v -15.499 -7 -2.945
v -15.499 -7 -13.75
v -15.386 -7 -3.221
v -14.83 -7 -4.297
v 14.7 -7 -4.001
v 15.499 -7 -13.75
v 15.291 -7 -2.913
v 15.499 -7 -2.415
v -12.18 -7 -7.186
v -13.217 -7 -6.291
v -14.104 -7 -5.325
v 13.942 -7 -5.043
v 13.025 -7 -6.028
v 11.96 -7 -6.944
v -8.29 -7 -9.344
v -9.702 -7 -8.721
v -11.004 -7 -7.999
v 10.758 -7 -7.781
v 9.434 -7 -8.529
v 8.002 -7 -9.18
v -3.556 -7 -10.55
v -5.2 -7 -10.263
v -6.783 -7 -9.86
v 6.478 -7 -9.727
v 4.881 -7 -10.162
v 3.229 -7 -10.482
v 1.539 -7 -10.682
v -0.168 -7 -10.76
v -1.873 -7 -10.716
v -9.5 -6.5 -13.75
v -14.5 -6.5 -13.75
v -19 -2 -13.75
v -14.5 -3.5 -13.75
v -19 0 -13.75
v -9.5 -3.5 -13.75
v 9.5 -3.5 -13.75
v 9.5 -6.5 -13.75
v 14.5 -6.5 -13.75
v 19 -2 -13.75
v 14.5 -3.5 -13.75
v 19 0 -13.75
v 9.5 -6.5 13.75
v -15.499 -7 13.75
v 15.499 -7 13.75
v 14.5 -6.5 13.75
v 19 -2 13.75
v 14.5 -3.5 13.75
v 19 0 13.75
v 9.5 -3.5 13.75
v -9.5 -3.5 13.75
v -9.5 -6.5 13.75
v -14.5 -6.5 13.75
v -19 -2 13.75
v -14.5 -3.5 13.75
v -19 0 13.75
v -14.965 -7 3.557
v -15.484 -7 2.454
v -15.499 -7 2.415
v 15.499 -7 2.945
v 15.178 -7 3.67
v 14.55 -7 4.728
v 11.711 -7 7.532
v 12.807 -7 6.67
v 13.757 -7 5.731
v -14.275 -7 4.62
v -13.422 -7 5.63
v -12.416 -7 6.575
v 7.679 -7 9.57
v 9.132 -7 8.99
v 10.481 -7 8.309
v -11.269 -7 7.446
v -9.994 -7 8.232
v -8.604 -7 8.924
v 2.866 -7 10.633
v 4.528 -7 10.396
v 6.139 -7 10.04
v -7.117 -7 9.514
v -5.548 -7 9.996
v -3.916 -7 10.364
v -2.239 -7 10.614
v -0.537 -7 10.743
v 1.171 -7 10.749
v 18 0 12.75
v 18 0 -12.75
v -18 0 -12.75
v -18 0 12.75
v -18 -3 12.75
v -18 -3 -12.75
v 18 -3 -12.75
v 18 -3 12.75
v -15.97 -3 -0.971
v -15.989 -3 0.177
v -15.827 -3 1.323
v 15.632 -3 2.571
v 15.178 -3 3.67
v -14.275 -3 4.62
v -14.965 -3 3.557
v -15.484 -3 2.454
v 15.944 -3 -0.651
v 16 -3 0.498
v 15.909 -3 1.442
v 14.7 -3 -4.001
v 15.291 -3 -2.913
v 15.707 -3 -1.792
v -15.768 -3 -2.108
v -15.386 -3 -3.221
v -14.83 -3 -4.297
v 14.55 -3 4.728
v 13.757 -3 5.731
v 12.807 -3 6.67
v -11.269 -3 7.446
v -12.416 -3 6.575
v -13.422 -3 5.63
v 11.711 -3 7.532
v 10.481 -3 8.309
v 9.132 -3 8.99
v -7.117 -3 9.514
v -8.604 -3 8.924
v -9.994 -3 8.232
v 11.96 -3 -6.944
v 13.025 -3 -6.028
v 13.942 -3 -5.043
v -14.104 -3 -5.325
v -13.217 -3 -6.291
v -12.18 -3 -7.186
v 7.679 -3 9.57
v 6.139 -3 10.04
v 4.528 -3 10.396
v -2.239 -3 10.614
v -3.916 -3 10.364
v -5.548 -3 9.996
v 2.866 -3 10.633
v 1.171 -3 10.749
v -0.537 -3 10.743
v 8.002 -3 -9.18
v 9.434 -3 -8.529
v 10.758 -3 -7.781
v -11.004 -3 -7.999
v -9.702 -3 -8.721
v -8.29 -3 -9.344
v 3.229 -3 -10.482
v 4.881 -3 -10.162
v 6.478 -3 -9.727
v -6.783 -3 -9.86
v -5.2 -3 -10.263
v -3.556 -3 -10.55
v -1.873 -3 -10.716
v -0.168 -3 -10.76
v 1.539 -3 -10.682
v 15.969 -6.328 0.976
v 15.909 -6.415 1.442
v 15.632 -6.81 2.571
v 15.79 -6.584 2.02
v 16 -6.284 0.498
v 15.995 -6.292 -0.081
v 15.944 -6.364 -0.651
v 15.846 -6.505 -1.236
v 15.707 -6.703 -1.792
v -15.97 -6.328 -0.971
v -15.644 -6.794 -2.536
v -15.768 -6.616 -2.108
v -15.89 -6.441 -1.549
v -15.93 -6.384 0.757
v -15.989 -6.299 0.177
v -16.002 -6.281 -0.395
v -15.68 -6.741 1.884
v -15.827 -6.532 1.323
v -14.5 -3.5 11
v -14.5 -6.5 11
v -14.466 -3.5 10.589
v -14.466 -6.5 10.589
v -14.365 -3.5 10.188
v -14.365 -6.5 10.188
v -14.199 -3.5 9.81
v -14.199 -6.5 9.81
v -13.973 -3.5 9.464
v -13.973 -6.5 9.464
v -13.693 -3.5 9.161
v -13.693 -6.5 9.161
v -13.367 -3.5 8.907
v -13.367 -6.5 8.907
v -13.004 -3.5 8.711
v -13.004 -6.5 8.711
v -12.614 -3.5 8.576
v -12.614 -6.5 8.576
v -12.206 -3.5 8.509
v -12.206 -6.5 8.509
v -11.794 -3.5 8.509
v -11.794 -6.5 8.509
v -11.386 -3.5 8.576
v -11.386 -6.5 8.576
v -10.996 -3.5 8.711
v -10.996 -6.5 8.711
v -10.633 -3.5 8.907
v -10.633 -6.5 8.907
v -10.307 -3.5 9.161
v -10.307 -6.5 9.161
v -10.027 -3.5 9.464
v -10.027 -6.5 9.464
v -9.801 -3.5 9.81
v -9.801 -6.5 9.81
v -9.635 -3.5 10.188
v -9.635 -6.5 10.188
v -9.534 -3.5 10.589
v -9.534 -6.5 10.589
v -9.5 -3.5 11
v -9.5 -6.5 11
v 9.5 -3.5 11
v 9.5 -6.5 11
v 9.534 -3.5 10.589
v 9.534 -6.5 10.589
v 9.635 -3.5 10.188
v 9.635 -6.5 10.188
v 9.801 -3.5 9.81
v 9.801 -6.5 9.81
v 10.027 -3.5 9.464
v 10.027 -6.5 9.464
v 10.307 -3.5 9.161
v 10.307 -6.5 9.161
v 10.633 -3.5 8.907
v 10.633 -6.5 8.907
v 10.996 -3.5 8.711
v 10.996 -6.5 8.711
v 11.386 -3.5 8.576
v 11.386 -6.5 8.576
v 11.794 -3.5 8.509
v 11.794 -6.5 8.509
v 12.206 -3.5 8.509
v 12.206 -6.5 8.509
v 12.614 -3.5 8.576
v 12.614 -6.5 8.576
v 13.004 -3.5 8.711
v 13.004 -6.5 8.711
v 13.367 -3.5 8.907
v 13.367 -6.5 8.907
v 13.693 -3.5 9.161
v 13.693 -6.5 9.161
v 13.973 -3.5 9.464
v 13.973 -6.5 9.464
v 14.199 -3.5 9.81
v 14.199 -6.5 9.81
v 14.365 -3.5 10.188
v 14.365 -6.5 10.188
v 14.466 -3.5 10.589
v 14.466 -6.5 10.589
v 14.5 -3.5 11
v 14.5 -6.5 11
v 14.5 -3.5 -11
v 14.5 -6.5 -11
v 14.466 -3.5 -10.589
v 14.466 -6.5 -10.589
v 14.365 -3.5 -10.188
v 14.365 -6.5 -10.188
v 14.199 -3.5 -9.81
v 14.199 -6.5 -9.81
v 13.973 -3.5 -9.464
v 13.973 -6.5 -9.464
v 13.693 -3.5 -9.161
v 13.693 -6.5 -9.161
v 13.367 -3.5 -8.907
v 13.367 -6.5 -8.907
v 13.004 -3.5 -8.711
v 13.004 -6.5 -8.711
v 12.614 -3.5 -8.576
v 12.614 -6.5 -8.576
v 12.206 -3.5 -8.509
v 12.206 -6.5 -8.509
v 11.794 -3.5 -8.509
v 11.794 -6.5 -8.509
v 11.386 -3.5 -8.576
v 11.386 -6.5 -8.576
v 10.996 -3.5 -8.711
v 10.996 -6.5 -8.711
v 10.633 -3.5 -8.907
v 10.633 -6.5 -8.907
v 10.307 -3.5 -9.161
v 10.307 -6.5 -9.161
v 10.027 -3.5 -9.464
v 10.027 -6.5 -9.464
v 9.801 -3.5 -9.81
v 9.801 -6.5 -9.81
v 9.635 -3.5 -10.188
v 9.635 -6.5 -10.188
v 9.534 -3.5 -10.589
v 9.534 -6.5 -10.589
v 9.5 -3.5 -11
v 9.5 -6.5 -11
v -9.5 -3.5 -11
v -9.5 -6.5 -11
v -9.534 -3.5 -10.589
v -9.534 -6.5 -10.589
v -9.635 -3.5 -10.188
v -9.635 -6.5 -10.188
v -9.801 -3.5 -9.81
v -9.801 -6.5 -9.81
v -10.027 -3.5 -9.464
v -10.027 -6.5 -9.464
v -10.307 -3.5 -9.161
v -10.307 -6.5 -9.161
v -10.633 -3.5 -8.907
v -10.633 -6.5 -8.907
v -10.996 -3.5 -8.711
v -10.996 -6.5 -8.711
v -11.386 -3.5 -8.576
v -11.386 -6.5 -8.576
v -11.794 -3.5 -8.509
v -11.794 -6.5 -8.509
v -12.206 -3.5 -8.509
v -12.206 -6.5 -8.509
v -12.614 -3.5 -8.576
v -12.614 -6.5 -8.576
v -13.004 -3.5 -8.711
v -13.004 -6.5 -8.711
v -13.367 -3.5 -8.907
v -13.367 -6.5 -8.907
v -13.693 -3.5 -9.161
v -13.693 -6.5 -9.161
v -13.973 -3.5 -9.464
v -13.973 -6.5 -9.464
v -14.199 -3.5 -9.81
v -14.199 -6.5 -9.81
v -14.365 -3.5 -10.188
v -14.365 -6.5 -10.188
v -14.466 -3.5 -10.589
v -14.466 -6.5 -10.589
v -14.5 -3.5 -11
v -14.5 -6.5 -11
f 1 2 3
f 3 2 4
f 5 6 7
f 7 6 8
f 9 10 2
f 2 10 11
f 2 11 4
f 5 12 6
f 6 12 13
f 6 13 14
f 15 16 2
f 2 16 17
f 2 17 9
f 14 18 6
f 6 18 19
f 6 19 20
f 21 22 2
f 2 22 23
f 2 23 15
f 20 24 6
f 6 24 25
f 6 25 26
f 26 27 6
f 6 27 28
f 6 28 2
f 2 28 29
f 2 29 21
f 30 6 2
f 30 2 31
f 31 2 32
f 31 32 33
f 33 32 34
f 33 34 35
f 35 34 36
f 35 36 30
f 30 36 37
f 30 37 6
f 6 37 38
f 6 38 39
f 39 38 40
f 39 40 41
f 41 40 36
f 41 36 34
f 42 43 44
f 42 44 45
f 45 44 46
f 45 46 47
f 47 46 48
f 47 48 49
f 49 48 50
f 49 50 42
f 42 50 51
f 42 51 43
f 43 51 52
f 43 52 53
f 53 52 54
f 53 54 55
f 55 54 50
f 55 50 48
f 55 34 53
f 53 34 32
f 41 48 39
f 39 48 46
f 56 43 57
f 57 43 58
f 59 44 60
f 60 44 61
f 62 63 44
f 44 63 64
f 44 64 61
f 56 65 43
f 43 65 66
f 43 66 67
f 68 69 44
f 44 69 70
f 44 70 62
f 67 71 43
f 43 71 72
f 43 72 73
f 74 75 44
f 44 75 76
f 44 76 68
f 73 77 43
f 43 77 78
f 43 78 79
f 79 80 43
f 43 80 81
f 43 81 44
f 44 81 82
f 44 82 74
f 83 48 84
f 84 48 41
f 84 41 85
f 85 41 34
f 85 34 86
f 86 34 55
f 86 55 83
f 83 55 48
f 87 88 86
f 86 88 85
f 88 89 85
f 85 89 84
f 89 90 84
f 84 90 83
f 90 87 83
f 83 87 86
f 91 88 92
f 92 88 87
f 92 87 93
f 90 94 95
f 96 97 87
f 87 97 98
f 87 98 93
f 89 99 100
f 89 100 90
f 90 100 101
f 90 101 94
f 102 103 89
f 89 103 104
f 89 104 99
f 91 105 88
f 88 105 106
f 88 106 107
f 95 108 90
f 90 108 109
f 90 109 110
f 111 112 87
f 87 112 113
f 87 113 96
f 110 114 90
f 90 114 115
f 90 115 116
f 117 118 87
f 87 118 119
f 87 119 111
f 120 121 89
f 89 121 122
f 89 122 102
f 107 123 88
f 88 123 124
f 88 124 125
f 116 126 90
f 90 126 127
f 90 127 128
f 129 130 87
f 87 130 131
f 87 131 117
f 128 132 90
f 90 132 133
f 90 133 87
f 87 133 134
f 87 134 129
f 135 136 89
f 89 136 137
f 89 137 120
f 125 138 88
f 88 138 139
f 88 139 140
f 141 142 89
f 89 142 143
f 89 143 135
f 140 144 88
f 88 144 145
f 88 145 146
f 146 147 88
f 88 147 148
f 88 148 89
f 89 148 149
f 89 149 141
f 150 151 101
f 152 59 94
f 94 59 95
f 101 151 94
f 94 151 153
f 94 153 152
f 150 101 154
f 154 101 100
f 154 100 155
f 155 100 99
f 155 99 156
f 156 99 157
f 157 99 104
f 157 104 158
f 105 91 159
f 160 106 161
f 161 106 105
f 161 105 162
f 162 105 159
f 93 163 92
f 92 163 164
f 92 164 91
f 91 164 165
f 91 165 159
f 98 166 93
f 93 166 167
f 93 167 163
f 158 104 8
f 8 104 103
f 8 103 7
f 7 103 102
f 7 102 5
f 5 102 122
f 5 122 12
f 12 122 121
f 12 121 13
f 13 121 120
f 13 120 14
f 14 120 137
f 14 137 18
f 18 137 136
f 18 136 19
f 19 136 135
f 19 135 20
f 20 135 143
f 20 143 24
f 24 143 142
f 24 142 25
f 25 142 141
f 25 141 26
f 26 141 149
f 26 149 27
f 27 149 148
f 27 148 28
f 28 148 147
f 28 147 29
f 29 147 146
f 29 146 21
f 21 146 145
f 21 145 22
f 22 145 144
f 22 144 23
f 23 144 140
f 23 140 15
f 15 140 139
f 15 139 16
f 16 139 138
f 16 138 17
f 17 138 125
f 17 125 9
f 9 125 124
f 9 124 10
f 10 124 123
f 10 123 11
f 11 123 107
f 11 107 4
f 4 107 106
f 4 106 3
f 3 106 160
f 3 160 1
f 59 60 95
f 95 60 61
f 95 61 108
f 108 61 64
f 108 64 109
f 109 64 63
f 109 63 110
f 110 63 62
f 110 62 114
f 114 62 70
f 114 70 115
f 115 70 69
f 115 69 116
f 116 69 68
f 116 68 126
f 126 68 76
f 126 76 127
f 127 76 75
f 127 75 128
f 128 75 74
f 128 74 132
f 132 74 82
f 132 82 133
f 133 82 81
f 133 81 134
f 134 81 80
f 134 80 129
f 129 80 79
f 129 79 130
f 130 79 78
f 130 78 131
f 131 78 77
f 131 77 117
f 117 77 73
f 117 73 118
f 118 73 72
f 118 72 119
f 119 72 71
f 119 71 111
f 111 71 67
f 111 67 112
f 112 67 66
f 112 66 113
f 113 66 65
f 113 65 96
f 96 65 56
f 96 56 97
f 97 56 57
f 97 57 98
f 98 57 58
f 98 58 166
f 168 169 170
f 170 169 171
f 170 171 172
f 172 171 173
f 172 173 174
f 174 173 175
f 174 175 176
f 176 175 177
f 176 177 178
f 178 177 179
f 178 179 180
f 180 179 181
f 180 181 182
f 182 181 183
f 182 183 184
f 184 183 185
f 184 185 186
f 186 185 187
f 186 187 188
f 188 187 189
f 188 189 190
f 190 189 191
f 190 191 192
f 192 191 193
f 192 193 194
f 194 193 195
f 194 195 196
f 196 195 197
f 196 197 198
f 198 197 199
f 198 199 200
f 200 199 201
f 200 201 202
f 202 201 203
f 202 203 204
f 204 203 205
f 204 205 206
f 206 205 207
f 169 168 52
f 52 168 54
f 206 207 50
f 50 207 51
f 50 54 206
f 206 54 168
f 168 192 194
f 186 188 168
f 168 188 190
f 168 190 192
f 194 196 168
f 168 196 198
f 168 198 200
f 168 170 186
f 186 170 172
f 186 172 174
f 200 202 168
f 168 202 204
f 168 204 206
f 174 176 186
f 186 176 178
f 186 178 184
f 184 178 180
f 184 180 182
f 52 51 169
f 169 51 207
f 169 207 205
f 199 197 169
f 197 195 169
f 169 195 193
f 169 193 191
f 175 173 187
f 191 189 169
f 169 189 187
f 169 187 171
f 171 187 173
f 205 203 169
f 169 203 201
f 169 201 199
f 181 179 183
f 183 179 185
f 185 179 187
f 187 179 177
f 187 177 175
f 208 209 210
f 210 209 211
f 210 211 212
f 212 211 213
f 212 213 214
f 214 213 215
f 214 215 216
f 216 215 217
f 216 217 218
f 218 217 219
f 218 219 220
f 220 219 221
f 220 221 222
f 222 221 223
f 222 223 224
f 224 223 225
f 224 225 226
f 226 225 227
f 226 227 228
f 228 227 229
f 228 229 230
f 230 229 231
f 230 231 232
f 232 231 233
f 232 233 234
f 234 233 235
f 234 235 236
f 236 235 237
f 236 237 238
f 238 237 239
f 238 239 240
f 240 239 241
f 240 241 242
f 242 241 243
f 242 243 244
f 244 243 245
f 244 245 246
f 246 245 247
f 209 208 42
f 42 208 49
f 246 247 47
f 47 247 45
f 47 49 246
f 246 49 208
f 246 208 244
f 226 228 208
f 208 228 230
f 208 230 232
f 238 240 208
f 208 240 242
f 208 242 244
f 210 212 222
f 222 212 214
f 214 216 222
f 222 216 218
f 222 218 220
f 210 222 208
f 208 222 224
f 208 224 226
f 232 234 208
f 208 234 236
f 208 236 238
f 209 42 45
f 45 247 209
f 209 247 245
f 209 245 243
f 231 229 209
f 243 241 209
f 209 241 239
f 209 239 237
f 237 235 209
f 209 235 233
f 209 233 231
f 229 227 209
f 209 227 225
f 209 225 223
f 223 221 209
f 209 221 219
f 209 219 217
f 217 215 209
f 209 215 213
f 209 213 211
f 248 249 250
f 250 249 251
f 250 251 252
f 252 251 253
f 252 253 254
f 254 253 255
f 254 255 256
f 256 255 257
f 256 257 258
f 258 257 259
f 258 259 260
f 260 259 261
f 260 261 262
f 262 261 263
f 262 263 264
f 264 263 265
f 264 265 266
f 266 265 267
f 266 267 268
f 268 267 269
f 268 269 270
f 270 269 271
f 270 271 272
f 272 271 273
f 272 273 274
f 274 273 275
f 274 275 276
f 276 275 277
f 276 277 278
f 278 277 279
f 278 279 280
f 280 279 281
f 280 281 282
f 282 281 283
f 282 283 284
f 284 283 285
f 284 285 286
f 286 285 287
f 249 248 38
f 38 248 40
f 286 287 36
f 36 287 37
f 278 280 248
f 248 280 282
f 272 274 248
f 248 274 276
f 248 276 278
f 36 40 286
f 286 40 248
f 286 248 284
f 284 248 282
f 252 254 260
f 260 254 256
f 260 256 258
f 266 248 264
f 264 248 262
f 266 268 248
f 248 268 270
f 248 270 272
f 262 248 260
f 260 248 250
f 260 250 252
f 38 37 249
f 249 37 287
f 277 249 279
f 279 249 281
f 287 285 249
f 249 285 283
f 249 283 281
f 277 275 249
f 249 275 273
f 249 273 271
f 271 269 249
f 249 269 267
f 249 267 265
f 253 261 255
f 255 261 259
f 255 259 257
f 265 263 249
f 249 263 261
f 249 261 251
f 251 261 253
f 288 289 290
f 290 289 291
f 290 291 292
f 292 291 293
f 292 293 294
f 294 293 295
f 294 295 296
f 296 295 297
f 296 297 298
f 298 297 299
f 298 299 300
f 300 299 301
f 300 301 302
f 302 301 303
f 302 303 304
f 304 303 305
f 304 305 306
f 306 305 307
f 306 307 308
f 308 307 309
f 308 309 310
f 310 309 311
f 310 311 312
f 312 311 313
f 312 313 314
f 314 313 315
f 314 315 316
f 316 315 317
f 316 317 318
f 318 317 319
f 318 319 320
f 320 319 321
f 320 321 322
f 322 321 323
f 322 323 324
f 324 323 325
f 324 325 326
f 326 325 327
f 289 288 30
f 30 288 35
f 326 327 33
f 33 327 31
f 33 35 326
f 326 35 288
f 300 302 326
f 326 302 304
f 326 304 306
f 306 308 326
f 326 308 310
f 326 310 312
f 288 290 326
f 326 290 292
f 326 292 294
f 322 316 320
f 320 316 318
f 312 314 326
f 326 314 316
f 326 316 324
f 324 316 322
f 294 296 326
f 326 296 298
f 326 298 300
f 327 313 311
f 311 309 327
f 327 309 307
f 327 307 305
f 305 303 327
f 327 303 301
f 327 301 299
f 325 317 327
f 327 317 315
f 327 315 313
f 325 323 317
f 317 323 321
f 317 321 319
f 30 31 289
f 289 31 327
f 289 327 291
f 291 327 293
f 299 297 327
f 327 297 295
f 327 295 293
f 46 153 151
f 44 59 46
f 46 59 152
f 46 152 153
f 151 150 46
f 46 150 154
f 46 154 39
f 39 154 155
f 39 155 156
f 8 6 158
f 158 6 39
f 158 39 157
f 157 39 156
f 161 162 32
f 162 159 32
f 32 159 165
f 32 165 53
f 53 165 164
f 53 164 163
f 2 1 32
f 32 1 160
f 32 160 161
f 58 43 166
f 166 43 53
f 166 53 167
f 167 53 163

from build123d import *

# Parameters (mm, degrees)
SKETCH1_W               = 38
SKETCH1_H               = 27.5
BOSS_EXTRUDE1_DEPTH     = 7
SKETCH2_W               = 36
SKETCH2_H               = 25.5
CUT_EXTRUDE1_DEPTH      = 3
SKETCH3_RX              = 16.007748615
SKETCH3_RY              = 10.755206101
CUT_EXTRUDE2_DEPTH      = 4
CUT_EXTRUDE2_DEPTH_BACK = 5
CUT_EXTRUDE4_DEPTH      = 1.5
CUT_EXTRUDE5_DEPTH      = 14.7500001
CUT_EXTRUDE5_DEPTH_BACK = 14.7500001


with BuildPart() as part:
    # Sketch1 → Boss-Extrude1 (new body)
    with BuildSketch(Plane(origin=(0, 0, 0), x_dir=(1, 0, 0), z_dir=(0, 1, 0))):
        Rectangle(SKETCH1_W, SKETCH1_H)
    extrude(amount=-BOSS_EXTRUDE1_DEPTH)

    # Sketch2 → Cut-Extrude1 (cut)
    with BuildSketch(Plane(origin=(0, 0, 0), x_dir=(1, 0, 0), z_dir=(0, 1, 0))):
        Rectangle(SKETCH2_W, SKETCH2_H)
    extrude(amount=-CUT_EXTRUDE1_DEPTH, mode=Mode.SUBTRACT)

    # Sketch3 → Cut-Extrude2 (cut, two sides)
    with BuildSketch(Plane(origin=(0, -3, 0), x_dir=(1, 0, 0), z_dir=(0, 1, 0))) as cut_extrude2_sk:
        with Locations(Location((0, 0), (0, 0, -1.782797699))):
            Ellipse(SKETCH3_RX, SKETCH3_RY)
    extrude(amount=CUT_EXTRUDE2_DEPTH, mode=Mode.SUBTRACT)
    extrude(cut_extrude2_sk.sketch, amount=-CUT_EXTRUDE2_DEPTH_BACK, mode=Mode.SUBTRACT)

    # Sketch8 → Cut-Extrude4 (cut, symmetric)
    with BuildSketch(Plane(origin=(0, -5, 0), x_dir=(-1, 0, 0), z_dir=(0, -1, 0))):
        with BuildLine():
            Line((-14.5, 11), (-14.5, 23.562662058))
            Line((-14.5, 23.562662058), (-9.5, 23.562662058))
            Line((-9.5, 23.562662058), (-9.5, 11))
            ThreePointArc((-9.5, 11), (-12, 8.5), (-14.5, 11))
        make_face()
        with BuildLine():
            Line((9.5, 23.562662058), (9.5, 11))
            ThreePointArc((9.5, 11), (12, 8.5), (14.5, 11))
            Line((14.5, 11), (14.5, 23.562662058))
            Line((14.5, 23.562662058), (9.5, 23.562662058))
        make_face()
        with BuildLine():
            Line((14.5, -11), (14.5, -23.562662058))
            Line((14.5, -23.562662058), (9.5, -23.562662058))
            Line((9.5, -23.562662058), (9.5, -11))
            ThreePointArc((9.5, -11), (12, -8.5), (14.5, -11))
        make_face()
        with BuildLine():
            Line((-9.5, -23.562662058), (-9.5, -11))
            ThreePointArc((-9.5, -11), (-12, -8.5), (-14.5, -11))
            Line((-14.5, -11), (-14.5, -23.562662058))
            Line((-14.5, -23.562662058), (-9.5, -23.562662058))
        make_face()
    extrude(amount=CUT_EXTRUDE4_DEPTH, both=True, mode=Mode.SUBTRACT)

    # Sketch9 → Cut-Extrude5 (cut, two sides)
    with BuildSketch(Plane.XY) as cut_extrude5_sk:
        Polygon((-15.498962309, -7), (-19, -2), (-19, -7), align=None)
        Polygon((19, -7), (15.498962309, -7), (19, -2), align=None)
    extrude(amount=CUT_EXTRUDE5_DEPTH, mode=Mode.SUBTRACT)
    extrude(cut_extrude5_sk.sketch, amount=-CUT_EXTRUDE5_DEPTH_BACK, mode=Mode.SUBTRACT)


solid = part.part
